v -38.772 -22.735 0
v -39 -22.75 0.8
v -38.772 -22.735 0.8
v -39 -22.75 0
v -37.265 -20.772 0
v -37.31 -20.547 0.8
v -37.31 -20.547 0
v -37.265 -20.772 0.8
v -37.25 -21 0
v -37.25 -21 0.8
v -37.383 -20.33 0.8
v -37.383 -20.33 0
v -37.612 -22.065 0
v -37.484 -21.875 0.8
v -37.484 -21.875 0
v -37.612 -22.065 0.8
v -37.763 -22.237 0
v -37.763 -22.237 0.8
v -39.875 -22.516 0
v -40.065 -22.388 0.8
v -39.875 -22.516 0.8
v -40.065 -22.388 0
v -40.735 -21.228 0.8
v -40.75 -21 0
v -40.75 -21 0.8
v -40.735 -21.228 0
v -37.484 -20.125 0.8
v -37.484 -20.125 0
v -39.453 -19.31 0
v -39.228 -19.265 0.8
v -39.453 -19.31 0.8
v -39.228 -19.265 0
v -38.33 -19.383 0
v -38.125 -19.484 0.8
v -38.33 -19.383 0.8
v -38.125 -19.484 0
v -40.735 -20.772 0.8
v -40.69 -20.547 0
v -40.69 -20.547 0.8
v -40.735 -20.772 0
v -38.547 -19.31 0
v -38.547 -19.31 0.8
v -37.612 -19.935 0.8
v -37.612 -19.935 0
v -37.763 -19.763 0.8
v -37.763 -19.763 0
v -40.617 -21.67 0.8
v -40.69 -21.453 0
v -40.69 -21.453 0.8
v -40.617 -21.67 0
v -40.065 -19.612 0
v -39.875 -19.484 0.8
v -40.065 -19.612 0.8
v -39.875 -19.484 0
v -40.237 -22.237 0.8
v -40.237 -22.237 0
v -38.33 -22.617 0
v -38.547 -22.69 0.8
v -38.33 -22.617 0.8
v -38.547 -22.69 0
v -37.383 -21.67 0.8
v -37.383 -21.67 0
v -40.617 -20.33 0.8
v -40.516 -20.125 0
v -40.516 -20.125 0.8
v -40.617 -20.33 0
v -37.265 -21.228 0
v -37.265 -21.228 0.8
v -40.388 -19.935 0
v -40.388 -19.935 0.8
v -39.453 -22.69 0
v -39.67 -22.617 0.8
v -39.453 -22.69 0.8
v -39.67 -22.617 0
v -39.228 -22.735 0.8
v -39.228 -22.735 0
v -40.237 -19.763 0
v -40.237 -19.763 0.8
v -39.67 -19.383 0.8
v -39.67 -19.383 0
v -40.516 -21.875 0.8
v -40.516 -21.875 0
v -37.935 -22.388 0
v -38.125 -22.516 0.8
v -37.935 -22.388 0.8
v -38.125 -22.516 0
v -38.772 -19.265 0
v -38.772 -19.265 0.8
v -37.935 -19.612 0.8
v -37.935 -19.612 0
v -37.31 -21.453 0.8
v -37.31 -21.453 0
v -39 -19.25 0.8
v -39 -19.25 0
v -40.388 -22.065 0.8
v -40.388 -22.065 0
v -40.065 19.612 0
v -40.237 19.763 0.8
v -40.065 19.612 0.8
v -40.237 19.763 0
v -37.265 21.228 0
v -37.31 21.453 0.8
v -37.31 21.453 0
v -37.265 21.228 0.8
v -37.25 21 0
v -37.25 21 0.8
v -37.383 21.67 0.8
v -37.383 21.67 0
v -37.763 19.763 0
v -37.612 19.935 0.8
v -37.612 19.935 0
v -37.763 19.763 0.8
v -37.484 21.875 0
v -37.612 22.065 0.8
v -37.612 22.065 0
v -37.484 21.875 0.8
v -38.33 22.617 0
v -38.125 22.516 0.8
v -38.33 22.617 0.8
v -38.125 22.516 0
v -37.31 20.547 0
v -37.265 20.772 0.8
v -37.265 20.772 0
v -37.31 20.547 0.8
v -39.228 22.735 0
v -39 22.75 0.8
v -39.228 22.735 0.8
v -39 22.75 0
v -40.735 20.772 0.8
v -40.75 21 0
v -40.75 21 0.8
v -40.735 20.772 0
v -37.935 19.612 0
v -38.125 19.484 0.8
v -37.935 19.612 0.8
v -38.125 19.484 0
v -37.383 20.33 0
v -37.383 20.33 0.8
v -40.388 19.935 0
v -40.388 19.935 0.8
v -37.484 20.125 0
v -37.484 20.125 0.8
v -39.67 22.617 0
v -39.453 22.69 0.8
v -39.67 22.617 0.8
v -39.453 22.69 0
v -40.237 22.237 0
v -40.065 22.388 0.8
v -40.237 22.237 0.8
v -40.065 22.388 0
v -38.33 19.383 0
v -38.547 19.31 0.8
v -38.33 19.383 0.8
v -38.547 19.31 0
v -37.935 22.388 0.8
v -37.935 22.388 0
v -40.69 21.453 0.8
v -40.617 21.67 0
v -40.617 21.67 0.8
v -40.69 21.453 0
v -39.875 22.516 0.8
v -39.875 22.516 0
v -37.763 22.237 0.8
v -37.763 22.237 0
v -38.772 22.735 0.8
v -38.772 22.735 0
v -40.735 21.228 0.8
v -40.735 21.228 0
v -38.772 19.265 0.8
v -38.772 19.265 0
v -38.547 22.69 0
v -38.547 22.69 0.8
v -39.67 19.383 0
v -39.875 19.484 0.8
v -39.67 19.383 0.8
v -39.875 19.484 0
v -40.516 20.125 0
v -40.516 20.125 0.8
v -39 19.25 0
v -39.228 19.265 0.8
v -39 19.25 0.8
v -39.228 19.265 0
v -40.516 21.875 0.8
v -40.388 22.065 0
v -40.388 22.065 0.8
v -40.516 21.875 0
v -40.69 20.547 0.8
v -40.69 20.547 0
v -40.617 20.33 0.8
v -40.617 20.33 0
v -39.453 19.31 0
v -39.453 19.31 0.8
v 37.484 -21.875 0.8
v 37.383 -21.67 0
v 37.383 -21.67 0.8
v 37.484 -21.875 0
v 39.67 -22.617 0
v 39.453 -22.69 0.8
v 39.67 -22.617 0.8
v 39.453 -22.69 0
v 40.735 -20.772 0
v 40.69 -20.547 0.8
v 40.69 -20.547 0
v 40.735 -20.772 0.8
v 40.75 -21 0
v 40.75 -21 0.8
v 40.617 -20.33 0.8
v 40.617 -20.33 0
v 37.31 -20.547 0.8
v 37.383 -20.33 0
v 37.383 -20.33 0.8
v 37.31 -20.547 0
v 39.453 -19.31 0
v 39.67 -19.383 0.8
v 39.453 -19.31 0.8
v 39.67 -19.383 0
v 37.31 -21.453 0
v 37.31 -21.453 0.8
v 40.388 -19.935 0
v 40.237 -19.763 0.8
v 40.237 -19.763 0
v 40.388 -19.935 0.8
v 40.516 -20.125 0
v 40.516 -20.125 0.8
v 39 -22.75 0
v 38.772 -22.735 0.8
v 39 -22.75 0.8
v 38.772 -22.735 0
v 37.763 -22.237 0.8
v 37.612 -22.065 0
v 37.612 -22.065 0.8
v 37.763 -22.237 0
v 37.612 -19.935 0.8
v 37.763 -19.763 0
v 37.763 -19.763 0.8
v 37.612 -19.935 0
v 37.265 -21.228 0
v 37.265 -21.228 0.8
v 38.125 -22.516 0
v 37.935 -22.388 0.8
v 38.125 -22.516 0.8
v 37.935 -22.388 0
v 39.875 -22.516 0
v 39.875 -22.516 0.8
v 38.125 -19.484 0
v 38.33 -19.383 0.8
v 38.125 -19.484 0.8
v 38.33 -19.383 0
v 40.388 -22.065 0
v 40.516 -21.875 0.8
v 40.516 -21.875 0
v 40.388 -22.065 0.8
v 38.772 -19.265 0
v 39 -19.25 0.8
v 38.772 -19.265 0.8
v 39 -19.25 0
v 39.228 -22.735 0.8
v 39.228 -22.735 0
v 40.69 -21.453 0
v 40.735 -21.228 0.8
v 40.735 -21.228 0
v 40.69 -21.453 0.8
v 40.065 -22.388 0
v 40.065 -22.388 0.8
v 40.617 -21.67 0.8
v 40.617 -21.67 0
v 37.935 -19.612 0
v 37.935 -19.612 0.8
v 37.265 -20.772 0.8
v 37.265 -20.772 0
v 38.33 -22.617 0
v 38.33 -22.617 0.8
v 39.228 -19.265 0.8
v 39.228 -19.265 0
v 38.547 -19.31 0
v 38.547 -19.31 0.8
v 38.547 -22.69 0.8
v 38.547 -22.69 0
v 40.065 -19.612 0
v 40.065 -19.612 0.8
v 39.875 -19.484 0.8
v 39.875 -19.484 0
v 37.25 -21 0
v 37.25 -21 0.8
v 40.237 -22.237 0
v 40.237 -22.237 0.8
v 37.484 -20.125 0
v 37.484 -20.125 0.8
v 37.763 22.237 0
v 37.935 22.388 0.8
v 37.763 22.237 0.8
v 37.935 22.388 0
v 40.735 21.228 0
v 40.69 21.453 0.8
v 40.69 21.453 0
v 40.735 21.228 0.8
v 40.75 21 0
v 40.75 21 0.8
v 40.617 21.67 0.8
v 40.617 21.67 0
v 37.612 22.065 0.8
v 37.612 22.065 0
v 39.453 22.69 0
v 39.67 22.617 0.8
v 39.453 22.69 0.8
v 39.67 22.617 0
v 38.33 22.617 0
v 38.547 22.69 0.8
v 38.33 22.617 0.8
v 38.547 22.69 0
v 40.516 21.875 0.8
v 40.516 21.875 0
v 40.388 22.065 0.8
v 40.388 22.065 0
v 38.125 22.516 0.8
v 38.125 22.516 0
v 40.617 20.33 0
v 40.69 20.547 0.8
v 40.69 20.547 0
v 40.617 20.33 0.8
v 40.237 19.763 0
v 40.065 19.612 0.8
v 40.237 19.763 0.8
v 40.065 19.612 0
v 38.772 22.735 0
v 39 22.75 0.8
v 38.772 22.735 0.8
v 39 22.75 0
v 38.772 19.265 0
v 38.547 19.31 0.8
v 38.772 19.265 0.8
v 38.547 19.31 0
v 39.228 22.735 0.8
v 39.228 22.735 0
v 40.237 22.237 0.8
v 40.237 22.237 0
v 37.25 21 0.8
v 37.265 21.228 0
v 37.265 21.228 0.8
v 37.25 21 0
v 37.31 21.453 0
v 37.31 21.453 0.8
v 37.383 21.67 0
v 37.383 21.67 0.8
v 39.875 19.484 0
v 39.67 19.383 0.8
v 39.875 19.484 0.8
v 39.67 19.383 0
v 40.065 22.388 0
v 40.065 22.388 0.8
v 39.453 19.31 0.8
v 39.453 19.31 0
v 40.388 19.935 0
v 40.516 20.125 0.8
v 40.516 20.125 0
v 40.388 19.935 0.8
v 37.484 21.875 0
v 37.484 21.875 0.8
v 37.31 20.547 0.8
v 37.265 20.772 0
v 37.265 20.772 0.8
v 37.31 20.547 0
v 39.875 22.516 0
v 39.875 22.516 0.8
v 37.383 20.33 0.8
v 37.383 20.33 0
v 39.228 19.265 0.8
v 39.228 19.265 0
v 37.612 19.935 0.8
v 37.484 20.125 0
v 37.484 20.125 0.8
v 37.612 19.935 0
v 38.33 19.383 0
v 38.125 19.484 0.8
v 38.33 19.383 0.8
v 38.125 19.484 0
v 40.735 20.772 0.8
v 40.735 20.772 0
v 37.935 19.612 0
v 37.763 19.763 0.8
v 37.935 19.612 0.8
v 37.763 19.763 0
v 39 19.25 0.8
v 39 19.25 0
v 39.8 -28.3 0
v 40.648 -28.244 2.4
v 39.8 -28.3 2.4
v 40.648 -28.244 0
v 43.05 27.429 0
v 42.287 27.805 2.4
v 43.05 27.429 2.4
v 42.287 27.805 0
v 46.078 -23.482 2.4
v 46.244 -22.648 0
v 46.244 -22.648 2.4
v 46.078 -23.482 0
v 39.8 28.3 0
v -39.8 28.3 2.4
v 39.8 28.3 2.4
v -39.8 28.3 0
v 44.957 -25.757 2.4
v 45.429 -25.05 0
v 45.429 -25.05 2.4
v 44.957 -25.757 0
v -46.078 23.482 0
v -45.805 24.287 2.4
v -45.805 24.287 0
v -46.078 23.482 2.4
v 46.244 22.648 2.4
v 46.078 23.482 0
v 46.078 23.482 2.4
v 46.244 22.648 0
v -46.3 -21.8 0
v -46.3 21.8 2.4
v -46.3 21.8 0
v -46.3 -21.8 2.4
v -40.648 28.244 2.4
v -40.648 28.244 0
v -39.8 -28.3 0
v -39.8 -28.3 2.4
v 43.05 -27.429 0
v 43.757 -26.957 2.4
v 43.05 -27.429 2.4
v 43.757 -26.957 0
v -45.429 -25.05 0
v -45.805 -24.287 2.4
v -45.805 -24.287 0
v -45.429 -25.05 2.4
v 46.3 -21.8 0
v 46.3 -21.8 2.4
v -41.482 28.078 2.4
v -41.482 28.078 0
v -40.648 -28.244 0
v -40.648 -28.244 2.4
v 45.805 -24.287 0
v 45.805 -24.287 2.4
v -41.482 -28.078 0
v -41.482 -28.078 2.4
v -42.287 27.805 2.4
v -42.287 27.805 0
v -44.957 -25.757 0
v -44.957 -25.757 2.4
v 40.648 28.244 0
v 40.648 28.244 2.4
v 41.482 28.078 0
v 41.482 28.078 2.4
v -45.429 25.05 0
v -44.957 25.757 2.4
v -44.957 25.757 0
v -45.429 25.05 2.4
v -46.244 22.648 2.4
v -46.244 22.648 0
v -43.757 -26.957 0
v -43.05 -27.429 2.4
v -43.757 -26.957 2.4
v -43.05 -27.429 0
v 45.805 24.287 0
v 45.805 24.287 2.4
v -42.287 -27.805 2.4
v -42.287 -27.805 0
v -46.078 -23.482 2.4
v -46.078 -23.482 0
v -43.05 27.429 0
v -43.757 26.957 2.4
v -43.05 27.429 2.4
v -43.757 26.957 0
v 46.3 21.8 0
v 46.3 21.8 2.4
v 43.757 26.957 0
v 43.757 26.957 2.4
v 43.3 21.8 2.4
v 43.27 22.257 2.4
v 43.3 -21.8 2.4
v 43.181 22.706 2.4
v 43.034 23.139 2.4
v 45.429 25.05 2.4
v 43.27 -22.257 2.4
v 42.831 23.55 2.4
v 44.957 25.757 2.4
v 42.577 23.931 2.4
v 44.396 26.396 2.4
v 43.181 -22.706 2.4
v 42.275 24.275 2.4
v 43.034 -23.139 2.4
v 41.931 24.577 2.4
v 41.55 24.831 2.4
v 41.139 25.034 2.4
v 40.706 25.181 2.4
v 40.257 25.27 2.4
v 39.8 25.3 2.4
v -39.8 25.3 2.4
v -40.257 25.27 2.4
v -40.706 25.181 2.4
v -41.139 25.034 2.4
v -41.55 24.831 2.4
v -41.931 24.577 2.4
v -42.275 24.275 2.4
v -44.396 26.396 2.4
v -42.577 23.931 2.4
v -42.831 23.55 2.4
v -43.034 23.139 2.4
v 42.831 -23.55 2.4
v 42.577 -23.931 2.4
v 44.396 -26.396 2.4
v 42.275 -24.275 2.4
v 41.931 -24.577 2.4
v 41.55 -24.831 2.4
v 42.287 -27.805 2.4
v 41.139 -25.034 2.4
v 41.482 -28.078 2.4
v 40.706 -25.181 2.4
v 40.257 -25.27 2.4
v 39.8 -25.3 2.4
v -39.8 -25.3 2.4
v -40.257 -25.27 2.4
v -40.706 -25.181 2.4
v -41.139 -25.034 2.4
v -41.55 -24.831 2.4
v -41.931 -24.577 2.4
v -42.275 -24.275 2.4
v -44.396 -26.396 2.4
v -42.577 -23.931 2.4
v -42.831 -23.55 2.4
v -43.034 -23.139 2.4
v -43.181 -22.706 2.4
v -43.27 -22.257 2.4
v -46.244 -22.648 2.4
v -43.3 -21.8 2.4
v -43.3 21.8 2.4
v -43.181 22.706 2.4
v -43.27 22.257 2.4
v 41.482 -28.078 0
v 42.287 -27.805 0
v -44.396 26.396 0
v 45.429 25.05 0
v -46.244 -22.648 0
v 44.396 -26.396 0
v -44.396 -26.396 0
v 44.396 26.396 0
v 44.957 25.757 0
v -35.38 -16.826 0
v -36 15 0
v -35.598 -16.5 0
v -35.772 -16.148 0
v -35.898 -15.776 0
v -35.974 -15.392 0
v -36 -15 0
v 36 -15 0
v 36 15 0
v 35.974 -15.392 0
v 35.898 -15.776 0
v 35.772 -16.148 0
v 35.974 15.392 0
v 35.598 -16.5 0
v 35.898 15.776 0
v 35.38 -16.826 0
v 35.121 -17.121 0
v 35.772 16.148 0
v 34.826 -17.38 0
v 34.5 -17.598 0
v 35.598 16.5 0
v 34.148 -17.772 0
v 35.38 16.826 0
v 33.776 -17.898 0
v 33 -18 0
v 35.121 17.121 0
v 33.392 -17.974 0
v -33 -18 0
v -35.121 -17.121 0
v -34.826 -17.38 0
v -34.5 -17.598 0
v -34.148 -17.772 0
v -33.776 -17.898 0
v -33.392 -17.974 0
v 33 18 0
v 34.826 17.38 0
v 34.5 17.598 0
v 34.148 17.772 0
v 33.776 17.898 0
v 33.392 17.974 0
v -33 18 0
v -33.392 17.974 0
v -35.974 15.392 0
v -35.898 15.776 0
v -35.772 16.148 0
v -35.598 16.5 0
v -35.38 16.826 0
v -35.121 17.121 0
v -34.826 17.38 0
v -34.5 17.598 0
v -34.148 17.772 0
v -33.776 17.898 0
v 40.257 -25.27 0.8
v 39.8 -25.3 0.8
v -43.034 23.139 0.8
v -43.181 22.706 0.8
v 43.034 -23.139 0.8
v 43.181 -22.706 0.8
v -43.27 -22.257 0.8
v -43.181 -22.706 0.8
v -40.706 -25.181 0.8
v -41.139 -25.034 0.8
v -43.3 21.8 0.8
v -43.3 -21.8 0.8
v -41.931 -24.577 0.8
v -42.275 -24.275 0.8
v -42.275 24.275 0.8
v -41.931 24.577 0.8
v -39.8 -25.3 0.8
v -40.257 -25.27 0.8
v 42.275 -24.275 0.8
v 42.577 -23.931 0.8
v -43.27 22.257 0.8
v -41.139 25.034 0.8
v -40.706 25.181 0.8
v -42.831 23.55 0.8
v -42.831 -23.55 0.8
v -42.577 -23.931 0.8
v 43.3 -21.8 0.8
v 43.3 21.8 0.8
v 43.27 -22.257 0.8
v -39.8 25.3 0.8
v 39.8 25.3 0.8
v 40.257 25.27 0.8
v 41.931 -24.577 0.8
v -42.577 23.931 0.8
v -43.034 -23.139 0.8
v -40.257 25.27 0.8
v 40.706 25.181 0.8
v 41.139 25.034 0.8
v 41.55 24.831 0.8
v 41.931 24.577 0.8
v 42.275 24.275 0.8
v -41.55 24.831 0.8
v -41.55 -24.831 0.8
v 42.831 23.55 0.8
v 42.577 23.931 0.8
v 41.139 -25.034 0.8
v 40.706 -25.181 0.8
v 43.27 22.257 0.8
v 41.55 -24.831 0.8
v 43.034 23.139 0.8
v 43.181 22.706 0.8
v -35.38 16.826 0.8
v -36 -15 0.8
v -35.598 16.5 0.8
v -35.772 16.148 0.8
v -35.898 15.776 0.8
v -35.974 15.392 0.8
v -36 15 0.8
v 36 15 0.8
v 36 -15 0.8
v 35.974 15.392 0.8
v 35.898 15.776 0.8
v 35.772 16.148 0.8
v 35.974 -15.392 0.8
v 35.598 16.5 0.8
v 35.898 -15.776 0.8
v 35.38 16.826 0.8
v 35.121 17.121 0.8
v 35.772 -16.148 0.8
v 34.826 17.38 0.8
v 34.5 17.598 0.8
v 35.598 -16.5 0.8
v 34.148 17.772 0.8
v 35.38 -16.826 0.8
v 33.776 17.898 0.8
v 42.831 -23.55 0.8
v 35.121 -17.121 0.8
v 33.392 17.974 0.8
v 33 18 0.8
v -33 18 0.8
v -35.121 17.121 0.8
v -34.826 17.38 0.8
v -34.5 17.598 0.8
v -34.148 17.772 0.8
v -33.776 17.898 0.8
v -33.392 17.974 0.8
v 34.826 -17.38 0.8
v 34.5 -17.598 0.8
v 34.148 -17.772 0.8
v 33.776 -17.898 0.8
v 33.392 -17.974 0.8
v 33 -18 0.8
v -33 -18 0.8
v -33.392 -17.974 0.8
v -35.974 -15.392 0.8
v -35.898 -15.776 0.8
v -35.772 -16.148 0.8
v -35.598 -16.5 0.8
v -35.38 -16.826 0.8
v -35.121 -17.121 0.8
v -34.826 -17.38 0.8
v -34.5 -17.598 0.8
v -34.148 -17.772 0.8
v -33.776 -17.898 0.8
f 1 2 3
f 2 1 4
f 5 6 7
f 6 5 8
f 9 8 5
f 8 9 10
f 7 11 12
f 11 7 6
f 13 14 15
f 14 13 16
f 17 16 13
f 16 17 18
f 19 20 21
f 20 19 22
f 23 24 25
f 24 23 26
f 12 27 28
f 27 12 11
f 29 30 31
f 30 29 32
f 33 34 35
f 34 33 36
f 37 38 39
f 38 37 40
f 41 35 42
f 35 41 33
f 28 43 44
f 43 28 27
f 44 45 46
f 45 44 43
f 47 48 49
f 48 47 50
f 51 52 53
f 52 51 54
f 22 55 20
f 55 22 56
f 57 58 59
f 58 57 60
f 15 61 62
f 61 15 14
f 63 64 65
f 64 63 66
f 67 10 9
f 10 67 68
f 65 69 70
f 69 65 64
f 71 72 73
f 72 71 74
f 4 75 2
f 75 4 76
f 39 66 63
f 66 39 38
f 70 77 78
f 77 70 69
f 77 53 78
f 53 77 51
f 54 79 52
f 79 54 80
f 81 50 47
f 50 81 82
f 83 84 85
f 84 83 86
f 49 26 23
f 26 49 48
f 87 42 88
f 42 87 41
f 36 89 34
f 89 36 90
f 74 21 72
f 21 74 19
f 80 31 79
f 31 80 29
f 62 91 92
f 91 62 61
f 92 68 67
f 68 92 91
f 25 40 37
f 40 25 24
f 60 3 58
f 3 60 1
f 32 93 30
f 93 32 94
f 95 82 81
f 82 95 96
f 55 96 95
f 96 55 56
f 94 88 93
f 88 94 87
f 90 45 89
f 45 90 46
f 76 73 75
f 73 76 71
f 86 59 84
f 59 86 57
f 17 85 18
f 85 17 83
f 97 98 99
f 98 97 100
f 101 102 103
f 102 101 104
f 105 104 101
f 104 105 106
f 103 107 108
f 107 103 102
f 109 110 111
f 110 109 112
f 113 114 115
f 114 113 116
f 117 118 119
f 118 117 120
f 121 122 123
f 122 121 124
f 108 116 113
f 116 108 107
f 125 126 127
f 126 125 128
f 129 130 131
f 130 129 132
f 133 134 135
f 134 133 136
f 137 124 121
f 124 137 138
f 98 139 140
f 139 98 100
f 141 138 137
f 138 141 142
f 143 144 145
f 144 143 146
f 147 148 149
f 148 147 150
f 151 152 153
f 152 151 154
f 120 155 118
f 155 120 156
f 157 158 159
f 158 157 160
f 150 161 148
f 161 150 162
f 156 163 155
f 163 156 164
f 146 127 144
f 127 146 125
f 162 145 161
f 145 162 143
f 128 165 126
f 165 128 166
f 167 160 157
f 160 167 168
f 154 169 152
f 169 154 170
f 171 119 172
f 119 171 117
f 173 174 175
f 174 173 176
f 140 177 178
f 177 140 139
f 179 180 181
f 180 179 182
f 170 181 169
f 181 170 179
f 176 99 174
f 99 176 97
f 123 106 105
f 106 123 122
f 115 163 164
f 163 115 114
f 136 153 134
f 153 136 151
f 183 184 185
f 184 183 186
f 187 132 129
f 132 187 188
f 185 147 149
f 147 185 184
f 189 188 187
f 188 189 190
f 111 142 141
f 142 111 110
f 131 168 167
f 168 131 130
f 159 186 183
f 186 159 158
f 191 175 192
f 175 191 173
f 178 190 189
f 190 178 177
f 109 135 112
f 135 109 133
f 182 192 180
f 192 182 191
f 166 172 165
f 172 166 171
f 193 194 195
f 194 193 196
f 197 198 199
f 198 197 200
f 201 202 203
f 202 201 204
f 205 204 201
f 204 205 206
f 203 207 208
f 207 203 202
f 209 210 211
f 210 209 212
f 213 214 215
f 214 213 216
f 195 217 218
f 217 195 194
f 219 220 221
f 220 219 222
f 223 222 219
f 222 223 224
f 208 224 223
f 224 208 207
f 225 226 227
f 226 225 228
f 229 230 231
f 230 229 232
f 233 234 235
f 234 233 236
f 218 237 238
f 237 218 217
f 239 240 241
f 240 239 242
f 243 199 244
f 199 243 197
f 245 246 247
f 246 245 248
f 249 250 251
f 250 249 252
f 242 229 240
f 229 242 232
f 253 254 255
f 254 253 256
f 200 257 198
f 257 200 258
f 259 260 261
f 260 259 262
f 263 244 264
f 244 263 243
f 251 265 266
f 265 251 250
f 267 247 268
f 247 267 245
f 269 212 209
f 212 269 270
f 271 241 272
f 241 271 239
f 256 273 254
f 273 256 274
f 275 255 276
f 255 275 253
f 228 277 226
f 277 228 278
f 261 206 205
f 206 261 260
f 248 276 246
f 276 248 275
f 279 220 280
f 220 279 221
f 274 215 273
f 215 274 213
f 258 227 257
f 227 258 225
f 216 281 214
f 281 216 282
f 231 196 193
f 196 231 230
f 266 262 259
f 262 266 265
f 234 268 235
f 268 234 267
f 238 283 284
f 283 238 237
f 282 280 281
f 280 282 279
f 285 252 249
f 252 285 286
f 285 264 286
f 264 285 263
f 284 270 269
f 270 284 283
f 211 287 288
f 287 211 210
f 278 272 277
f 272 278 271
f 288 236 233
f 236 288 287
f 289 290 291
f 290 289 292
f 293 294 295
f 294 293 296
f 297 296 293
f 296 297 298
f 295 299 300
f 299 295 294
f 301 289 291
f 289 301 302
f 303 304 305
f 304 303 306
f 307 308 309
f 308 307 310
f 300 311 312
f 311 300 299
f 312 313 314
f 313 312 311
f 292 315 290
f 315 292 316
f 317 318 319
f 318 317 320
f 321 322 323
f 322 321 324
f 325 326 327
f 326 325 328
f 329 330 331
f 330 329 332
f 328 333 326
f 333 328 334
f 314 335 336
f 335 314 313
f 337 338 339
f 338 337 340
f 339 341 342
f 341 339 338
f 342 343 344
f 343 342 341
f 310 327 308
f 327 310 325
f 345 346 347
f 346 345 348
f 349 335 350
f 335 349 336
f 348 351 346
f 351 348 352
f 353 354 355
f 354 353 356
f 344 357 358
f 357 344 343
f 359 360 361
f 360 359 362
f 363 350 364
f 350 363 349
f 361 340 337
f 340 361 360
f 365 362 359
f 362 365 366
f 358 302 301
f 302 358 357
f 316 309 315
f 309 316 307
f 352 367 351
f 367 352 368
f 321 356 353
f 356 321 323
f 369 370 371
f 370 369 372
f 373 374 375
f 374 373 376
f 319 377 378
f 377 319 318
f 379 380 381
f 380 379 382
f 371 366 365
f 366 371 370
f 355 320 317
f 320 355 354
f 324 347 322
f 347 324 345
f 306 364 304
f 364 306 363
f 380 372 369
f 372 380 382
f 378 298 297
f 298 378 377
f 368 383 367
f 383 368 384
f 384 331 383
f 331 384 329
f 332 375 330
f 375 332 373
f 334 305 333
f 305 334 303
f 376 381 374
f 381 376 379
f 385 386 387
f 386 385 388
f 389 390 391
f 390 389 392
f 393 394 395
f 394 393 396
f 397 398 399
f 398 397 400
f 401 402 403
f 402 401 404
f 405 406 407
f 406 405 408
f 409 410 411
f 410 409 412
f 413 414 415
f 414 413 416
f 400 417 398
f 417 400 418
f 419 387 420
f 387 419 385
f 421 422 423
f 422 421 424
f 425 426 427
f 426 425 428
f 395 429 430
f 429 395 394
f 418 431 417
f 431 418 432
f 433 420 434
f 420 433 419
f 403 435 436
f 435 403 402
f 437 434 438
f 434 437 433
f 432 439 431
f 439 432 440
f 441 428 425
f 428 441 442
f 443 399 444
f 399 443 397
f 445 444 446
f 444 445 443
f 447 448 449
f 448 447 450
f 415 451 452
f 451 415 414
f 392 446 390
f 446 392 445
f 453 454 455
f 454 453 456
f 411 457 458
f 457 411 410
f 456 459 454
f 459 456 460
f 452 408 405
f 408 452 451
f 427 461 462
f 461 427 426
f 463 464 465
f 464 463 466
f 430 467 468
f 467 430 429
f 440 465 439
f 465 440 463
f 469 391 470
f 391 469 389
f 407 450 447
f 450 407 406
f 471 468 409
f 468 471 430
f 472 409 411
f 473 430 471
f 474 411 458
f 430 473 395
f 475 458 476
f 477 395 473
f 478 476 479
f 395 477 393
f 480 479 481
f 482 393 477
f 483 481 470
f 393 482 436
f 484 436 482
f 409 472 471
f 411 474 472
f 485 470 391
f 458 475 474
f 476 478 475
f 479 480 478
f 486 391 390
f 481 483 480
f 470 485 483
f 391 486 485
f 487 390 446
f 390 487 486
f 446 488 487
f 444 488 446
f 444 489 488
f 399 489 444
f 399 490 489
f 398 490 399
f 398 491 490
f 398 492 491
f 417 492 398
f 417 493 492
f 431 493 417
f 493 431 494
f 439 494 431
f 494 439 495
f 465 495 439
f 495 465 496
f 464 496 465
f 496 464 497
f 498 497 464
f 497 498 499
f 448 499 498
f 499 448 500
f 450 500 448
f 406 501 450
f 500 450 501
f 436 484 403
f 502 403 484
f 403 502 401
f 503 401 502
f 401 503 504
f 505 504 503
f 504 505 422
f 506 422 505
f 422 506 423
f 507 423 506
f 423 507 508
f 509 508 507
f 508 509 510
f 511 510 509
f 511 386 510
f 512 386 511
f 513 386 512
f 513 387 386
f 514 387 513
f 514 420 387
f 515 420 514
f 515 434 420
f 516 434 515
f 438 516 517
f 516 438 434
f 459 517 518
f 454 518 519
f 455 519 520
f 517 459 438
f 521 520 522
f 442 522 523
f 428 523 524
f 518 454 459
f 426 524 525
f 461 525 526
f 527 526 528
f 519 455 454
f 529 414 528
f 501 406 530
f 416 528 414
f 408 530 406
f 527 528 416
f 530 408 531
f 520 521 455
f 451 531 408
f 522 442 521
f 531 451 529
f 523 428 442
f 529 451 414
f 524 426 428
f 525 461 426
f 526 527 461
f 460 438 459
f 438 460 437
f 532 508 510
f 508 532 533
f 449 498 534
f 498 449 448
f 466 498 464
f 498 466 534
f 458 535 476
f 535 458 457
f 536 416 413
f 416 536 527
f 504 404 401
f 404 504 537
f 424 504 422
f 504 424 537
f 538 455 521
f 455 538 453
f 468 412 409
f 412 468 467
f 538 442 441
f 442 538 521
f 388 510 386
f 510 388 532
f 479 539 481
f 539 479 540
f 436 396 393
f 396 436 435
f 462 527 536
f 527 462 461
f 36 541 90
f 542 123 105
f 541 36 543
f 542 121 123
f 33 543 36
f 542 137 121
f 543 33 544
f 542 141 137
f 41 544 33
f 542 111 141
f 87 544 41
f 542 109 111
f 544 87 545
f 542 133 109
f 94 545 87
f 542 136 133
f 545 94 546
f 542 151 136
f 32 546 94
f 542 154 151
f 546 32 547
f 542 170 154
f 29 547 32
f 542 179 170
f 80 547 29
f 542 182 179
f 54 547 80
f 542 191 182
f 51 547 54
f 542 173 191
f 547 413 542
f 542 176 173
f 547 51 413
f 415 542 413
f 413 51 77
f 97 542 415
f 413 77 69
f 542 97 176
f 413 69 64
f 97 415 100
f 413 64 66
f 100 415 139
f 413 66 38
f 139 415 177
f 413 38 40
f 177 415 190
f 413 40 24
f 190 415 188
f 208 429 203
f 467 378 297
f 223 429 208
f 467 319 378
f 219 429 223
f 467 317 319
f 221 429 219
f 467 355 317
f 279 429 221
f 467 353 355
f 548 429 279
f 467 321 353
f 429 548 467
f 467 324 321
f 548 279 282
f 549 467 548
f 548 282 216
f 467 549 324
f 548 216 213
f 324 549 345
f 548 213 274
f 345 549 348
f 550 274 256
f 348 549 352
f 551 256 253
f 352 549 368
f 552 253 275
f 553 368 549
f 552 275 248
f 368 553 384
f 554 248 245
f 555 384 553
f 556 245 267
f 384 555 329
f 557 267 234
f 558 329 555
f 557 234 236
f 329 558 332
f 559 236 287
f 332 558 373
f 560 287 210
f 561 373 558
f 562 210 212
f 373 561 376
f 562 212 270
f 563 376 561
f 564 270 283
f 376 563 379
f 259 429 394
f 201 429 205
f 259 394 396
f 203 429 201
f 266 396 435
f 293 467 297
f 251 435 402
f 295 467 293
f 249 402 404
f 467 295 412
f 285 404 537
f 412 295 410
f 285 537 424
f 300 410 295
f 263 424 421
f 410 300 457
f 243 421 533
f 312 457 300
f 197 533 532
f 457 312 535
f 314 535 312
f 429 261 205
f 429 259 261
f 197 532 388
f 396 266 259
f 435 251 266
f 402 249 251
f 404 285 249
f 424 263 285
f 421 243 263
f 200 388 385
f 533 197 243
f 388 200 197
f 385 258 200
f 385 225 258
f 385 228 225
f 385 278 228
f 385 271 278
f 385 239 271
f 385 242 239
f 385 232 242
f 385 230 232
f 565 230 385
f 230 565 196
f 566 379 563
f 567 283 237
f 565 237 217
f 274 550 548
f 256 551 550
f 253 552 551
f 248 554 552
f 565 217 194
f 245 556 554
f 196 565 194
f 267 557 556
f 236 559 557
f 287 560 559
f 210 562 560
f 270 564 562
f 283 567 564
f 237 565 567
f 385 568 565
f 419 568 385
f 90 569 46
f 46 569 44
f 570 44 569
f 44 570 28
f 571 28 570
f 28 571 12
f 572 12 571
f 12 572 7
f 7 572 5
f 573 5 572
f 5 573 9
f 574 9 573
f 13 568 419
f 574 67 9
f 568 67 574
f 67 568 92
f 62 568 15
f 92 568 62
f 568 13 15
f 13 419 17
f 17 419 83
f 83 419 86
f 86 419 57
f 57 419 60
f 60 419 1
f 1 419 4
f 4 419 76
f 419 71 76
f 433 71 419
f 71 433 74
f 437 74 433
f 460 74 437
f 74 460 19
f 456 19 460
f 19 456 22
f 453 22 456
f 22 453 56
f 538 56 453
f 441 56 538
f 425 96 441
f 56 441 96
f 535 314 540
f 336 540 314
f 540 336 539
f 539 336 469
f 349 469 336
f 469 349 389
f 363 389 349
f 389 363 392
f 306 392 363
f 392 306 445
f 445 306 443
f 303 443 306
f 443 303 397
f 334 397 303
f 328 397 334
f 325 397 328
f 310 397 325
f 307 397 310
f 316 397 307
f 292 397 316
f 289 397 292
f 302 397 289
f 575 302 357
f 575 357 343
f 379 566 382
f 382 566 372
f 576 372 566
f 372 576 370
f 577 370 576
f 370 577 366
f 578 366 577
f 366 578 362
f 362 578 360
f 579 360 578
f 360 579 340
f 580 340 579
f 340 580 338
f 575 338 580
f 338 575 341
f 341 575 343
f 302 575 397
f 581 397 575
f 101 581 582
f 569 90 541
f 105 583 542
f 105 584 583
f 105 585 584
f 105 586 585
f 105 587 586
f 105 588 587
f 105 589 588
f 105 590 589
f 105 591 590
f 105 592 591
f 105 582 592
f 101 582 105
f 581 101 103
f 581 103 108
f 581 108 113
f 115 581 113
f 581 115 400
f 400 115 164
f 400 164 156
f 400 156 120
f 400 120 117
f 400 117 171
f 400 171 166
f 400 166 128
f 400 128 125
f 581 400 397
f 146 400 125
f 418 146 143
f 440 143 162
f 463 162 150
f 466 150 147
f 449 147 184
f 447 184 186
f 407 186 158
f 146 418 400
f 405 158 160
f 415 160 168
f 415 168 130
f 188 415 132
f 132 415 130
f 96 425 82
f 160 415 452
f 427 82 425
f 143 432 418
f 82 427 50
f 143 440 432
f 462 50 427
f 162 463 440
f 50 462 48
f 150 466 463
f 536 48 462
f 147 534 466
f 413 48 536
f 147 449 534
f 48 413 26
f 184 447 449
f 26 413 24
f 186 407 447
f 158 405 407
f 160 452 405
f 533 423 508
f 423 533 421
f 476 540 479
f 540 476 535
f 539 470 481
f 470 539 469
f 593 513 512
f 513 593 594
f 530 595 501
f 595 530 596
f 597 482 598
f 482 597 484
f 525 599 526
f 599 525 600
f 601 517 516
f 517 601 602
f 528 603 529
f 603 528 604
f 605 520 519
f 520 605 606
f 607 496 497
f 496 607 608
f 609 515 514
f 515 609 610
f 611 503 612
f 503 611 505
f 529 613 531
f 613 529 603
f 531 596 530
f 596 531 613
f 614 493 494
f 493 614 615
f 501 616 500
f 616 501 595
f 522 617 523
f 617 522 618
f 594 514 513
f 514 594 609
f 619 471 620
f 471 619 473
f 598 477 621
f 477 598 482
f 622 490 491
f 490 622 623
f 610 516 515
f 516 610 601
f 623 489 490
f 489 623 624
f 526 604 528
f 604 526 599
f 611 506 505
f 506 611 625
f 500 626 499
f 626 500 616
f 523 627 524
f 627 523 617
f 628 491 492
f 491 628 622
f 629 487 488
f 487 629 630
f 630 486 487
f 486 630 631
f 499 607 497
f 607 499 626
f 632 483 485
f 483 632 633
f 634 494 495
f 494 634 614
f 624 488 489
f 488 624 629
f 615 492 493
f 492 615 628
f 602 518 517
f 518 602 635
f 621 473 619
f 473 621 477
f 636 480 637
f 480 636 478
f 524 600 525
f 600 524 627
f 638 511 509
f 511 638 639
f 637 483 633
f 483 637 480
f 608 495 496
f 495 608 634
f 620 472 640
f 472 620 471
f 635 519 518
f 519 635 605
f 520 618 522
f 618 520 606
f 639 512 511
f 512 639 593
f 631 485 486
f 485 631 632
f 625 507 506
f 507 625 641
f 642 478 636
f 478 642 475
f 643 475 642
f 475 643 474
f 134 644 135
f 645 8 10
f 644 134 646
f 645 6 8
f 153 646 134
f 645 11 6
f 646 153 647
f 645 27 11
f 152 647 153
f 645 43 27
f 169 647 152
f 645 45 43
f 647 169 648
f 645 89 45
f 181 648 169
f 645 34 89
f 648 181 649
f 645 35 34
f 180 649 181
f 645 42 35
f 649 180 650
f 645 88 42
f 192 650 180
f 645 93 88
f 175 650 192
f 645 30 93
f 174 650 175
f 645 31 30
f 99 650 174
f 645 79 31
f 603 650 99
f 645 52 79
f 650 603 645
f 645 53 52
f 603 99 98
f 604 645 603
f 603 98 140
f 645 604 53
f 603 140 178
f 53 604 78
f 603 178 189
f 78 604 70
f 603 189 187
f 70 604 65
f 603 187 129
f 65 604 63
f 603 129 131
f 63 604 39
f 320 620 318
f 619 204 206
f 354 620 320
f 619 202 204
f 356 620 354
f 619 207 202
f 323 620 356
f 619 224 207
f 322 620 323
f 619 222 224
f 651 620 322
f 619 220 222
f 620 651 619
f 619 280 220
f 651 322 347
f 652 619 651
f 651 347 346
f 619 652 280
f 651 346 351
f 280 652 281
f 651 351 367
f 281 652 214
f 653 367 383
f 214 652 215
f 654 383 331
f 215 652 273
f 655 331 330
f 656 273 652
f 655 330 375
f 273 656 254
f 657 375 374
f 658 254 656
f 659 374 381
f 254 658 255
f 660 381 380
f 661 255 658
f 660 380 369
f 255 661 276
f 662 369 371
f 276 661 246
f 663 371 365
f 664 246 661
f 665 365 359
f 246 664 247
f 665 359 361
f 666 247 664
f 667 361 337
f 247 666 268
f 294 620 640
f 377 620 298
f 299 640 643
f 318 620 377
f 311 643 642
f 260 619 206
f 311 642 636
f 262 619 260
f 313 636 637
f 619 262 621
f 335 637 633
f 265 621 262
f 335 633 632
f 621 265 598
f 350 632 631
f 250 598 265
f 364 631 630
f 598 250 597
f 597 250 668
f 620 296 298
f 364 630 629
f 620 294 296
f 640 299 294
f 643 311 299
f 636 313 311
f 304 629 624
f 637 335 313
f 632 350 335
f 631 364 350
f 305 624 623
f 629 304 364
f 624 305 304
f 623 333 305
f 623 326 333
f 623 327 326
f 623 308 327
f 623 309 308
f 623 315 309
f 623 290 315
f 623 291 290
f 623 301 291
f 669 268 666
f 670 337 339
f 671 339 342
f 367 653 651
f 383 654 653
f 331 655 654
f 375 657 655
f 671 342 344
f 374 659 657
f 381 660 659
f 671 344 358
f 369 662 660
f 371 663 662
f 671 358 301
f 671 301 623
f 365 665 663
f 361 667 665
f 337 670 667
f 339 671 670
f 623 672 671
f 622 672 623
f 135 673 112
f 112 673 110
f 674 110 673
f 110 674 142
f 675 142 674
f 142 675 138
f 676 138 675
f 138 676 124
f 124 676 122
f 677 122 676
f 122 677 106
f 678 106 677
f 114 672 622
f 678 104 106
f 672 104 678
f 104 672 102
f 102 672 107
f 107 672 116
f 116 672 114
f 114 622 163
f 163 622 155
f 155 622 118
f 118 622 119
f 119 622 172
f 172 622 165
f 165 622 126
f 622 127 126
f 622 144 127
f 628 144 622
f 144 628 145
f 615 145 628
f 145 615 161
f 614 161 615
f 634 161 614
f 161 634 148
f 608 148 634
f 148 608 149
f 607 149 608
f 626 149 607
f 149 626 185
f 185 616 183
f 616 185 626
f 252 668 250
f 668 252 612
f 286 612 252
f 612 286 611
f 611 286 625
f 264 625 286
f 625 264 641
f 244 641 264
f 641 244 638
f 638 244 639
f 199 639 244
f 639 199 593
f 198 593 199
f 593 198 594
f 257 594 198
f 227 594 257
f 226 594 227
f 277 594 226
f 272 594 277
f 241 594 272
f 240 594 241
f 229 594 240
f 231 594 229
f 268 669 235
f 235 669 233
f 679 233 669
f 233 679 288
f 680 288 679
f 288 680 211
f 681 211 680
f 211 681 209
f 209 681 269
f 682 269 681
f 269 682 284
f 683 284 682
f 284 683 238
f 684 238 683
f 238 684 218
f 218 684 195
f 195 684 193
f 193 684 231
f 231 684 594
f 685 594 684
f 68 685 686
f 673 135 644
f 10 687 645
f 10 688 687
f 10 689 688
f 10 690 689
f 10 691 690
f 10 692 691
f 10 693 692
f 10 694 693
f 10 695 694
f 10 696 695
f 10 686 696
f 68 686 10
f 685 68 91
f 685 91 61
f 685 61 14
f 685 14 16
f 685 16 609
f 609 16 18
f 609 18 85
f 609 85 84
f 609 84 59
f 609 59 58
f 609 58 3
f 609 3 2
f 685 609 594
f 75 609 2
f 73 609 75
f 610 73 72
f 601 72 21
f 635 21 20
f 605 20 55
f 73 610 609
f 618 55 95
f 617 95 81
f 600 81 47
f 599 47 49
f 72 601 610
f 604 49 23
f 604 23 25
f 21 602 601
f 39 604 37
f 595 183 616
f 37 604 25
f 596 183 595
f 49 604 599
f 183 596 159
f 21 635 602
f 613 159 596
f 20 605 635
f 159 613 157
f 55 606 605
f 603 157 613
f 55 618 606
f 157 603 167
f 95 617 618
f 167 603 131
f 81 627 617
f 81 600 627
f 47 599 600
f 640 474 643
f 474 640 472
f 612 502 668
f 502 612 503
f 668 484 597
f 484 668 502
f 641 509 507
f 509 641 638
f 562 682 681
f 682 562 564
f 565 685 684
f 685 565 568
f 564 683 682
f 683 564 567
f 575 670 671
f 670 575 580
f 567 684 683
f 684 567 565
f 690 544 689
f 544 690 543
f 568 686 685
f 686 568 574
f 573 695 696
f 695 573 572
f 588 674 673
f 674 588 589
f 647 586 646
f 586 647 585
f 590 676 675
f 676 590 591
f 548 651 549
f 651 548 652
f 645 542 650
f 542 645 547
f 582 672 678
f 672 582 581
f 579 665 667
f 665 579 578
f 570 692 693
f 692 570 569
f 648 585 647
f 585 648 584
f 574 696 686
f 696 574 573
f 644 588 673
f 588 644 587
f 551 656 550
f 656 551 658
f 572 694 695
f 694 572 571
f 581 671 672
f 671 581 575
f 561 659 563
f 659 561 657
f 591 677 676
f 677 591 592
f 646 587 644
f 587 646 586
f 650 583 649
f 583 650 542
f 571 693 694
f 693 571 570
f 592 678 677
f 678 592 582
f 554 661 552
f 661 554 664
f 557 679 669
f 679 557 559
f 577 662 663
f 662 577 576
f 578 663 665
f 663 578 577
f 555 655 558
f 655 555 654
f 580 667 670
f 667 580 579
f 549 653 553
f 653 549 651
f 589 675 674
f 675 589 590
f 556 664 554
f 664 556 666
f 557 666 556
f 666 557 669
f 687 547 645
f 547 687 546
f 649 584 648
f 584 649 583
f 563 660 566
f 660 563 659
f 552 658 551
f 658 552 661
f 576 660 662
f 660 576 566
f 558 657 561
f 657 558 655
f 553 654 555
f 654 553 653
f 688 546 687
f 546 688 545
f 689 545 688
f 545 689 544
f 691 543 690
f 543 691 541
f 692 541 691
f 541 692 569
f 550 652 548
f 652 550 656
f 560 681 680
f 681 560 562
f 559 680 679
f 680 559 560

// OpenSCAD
// Fit-test frame for the ES3C28P 2.8" ESP32-S3 touch display board.
// Print this first (about 15 minutes) and check the real board drops in and the screws line up.
// All board values come from ES3C28P_ES2N28P_Specification_V1.0.pdf, page 13.
// Orientation: X runs along the 86 mm side, Y along the 50 mm side. Origin = centre of the board.

// ---- Board (from the PDF) ----
board_len        = 86;     // PCB length (PDF: 86.00)
board_wid        = 50;     // PCB width  (PDF: 50.00)
board_thick      = 1.6;    // PCB thickness (PDF side view: 1.60)
board_corner_r   = 3.5;    // PCB corner radius (PDF: R3.50)
hole_dx          = 78;     // mounting hole spacing along the length (PDF: 78.00)
hole_dy          = 42;     // mounting hole spacing across the width (PDF: 42.00)
hole_d           = 3.2;    // mounting hole diameter (PDF: 3.20)

// ---- Printing ----
fit_clearance    = 0.3;    // gap per side between board and pocket wall
hole_extra       = 0.3;    // extra on the hole diameter so an M3 screw slides through

// ---- Fit-test frame ----
margin           = 3;      // frame wall width around the board
floor_t          = 0.8;    // thickness under the board
window_inset     = 7;      // the floor is cut out this far inside the board edge so you can see through
window_corner_r  = 3;
$fn              = 48;

pocket_len = board_len + 2*fit_clearance;
pocket_wid = board_wid + 2*fit_clearance;

module rrect(l, w, r, h) {
    linear_extrude(h)
        offset(r) square([l - 2*r, w - 2*r], center = true);
}

difference() {
    // outer plate
    rrect(pocket_len + 2*margin, pocket_wid + 2*margin, board_corner_r + margin, floor_t + board_thick);
    // board pocket
    translate([0, 0, floor_t]) rrect(pocket_len, pocket_wid, board_corner_r, board_thick + 1);
    // viewing window
    translate([0, 0, -1]) rrect(board_len - 2*window_inset, board_wid - 2*window_inset, window_corner_r, floor_t + 2);
    // four screw holes
    for (sx = [-1, 1], sy = [-1, 1])
        translate([sx*hole_dx/2, sy*hole_dy/2, -1]) cylinder(d = hole_d + hole_extra, h = floor_t + 2);
}
